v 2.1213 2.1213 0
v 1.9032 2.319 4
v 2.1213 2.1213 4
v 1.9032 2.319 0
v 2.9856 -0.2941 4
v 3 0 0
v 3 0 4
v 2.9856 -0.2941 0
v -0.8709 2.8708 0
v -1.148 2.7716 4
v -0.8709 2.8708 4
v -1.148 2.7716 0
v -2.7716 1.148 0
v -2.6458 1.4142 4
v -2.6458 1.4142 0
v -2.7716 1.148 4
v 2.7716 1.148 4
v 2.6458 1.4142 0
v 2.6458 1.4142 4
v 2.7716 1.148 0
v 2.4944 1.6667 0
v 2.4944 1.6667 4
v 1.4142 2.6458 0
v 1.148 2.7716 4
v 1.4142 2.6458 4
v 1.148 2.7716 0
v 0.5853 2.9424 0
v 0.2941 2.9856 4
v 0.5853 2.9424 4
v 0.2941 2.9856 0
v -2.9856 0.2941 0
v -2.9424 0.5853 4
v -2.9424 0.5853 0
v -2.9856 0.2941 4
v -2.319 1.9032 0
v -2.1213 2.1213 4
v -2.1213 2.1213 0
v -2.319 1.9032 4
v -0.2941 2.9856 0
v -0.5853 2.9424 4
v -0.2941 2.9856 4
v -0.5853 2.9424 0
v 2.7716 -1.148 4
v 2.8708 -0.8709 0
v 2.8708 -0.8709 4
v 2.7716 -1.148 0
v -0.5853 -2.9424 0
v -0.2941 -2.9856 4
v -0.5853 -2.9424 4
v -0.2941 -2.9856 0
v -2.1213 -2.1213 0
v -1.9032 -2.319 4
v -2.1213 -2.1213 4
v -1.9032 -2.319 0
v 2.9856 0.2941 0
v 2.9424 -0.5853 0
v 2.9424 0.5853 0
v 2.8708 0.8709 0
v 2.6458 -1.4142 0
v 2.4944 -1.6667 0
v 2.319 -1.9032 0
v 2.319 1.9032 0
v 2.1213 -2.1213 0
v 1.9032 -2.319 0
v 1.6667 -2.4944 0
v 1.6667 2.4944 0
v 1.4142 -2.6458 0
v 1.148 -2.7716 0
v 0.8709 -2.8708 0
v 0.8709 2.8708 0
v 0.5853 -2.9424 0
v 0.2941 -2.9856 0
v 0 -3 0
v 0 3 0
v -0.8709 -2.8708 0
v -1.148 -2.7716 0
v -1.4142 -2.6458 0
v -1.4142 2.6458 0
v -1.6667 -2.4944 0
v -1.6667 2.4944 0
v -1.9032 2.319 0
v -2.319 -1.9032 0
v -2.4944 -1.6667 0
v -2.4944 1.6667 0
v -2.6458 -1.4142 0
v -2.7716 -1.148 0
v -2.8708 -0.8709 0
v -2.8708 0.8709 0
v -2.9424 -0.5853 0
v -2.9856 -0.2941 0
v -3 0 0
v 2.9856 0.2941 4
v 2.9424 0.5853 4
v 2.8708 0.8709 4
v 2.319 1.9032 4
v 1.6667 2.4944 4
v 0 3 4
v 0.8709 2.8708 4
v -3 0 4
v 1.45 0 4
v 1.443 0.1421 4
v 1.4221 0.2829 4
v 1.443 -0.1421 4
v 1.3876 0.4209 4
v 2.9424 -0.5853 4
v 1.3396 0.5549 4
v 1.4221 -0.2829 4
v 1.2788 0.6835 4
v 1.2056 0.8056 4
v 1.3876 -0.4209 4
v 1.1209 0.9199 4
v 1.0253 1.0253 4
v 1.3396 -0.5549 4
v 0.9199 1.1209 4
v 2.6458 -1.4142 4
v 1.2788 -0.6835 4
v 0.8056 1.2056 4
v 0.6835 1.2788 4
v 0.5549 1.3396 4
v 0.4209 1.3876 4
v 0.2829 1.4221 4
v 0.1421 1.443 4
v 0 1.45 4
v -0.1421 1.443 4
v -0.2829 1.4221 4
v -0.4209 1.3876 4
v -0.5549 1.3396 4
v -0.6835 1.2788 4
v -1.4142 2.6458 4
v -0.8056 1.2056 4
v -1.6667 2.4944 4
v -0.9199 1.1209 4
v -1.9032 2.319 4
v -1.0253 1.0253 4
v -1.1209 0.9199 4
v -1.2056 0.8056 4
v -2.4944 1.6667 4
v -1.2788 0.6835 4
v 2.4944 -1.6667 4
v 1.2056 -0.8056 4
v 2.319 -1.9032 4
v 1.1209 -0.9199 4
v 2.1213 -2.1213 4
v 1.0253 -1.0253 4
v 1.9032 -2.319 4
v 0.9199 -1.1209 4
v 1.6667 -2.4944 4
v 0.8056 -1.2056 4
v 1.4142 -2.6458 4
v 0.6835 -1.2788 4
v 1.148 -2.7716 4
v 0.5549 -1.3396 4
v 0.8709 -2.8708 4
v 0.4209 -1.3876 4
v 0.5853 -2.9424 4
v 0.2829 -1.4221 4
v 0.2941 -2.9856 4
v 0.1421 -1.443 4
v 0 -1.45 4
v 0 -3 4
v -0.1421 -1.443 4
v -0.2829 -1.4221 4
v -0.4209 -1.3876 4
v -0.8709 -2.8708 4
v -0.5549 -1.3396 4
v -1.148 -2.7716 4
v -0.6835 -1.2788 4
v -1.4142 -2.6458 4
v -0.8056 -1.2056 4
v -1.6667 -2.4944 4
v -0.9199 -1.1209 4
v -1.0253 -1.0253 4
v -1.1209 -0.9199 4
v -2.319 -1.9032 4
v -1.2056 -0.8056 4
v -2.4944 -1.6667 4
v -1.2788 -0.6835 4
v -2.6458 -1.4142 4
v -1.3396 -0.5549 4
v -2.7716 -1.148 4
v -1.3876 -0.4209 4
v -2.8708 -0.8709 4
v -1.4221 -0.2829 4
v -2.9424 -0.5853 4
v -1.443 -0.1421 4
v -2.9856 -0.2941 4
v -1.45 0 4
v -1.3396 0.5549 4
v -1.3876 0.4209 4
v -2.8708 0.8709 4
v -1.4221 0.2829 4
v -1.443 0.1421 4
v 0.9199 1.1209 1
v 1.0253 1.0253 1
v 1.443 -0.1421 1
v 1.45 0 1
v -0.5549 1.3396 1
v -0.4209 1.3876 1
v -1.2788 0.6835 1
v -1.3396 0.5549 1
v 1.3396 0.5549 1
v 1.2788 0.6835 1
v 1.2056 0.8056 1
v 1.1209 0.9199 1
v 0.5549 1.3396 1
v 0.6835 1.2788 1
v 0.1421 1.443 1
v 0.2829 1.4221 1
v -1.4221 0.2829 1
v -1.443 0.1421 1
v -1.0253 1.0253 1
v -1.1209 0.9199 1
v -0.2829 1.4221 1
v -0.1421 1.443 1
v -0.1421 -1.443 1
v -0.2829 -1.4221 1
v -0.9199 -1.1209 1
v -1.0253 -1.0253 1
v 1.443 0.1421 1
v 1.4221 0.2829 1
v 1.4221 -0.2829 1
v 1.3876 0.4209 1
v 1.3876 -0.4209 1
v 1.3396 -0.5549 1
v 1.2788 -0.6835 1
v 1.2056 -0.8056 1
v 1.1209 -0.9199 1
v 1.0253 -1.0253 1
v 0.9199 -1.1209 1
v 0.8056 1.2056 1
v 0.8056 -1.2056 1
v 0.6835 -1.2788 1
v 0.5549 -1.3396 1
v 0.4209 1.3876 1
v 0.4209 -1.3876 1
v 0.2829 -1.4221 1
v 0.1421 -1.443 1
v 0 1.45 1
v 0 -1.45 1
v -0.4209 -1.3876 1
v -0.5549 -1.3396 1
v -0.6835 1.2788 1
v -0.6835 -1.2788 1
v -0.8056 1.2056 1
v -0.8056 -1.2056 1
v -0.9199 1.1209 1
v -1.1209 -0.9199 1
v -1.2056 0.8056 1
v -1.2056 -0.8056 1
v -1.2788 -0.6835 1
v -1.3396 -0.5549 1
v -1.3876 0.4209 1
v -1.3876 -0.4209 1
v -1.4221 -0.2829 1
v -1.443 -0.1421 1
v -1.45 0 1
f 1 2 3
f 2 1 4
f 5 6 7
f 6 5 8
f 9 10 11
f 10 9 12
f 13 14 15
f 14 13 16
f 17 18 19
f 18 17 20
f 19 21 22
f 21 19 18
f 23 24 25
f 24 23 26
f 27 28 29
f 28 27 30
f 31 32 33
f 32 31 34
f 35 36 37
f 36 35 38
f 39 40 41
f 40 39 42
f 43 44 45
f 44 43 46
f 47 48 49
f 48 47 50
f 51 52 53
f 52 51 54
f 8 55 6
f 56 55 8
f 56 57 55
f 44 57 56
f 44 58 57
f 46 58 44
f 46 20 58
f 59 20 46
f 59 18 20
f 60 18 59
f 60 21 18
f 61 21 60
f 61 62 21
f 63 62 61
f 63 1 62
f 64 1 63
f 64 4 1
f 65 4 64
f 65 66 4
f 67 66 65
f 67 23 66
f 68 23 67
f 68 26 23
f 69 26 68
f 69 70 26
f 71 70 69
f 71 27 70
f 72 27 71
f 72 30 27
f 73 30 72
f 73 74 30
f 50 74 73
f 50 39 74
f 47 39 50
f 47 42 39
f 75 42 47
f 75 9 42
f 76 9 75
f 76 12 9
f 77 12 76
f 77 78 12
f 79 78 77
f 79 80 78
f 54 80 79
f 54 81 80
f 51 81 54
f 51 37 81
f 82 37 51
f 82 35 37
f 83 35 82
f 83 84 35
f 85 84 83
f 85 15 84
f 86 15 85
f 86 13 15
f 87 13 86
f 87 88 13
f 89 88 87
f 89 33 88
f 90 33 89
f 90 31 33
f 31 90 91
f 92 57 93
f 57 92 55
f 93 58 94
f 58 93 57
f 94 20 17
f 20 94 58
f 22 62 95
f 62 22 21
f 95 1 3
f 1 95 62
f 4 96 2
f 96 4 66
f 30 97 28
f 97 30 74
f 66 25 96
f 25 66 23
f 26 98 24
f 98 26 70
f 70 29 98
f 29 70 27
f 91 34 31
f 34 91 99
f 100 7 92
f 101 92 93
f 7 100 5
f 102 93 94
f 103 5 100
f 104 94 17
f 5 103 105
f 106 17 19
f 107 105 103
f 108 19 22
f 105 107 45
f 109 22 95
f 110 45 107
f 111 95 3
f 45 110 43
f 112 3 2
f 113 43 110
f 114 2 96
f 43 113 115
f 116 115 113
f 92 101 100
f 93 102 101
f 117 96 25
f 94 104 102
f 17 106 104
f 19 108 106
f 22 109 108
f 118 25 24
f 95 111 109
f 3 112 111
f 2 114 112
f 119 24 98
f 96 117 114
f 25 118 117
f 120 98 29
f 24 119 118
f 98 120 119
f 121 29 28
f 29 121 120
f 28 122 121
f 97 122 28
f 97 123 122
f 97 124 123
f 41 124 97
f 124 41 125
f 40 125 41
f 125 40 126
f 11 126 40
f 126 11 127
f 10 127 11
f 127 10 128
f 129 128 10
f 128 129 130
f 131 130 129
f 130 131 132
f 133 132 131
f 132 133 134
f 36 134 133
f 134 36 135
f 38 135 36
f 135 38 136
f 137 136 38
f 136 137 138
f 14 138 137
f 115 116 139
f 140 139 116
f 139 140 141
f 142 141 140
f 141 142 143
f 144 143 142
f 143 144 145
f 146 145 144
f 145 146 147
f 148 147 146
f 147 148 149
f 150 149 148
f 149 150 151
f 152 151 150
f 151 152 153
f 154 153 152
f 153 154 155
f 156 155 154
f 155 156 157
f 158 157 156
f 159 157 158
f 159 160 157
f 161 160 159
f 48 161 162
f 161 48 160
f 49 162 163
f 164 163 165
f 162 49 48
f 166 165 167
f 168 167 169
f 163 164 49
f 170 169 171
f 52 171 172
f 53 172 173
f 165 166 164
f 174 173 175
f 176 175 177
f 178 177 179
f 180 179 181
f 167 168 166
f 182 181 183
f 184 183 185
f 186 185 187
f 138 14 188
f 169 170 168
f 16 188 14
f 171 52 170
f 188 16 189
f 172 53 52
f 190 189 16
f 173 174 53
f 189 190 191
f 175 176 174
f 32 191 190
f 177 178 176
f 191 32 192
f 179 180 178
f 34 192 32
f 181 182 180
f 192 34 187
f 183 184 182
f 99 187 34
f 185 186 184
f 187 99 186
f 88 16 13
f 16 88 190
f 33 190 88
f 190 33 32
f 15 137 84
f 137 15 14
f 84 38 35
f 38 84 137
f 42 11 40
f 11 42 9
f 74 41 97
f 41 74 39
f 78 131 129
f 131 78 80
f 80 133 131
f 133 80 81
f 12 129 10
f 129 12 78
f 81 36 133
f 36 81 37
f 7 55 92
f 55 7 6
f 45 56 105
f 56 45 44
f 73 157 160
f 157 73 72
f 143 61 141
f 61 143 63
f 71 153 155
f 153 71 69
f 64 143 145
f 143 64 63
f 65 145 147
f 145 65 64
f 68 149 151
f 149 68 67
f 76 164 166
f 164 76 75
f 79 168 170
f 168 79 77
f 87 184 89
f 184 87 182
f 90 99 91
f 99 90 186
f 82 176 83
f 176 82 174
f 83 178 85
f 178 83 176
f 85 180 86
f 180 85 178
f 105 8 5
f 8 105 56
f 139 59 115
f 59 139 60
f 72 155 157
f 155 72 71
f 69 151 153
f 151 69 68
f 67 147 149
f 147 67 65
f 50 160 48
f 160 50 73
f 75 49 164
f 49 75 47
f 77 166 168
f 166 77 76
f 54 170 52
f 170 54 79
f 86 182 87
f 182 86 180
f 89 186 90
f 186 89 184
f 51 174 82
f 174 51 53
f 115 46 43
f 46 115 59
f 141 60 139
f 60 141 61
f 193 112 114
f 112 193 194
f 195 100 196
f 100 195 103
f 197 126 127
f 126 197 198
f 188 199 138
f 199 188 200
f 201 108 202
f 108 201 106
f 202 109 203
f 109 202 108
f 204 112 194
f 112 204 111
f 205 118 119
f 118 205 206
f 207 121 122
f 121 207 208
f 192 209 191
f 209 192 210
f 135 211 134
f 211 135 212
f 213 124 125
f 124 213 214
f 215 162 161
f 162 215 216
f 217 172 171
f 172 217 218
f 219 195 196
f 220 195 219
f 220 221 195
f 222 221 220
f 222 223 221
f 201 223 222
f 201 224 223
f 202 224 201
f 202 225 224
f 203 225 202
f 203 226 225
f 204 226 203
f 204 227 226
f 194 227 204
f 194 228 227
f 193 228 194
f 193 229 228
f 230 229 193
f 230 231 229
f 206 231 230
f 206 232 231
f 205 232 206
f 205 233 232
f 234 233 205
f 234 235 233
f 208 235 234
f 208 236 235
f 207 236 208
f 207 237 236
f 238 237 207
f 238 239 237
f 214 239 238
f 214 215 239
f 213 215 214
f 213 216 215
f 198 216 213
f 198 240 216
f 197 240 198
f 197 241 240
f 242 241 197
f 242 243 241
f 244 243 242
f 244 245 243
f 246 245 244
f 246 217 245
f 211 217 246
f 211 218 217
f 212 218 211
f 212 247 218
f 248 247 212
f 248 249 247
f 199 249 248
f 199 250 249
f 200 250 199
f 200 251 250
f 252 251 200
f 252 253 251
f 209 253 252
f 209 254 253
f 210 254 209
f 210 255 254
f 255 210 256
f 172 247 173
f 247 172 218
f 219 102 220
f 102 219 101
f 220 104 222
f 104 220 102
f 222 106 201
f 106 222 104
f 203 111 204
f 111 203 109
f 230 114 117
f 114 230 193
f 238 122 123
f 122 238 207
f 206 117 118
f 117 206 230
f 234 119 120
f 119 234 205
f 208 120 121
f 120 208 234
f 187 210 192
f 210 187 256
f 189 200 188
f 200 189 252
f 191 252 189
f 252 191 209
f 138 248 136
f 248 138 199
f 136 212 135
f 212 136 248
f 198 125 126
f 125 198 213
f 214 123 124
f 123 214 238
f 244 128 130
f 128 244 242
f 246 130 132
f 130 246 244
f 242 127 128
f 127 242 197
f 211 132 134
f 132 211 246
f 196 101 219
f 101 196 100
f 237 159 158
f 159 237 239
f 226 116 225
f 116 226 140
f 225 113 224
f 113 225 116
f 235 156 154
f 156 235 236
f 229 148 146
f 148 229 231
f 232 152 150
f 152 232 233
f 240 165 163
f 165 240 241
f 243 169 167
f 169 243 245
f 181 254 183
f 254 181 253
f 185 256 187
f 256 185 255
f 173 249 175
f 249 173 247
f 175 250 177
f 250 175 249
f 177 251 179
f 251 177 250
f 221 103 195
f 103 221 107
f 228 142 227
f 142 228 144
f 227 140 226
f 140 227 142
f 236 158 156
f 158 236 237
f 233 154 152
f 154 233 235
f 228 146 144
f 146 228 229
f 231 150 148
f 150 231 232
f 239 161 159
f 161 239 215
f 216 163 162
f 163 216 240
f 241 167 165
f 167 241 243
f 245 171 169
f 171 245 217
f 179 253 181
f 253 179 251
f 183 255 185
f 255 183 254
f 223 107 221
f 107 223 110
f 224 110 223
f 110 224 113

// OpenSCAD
difference() {
    cylinder(d=6,h=4,$fn=64);
    translate([0,0,1]) cylinder(d=2.9,h=3,$fn=64);
}
